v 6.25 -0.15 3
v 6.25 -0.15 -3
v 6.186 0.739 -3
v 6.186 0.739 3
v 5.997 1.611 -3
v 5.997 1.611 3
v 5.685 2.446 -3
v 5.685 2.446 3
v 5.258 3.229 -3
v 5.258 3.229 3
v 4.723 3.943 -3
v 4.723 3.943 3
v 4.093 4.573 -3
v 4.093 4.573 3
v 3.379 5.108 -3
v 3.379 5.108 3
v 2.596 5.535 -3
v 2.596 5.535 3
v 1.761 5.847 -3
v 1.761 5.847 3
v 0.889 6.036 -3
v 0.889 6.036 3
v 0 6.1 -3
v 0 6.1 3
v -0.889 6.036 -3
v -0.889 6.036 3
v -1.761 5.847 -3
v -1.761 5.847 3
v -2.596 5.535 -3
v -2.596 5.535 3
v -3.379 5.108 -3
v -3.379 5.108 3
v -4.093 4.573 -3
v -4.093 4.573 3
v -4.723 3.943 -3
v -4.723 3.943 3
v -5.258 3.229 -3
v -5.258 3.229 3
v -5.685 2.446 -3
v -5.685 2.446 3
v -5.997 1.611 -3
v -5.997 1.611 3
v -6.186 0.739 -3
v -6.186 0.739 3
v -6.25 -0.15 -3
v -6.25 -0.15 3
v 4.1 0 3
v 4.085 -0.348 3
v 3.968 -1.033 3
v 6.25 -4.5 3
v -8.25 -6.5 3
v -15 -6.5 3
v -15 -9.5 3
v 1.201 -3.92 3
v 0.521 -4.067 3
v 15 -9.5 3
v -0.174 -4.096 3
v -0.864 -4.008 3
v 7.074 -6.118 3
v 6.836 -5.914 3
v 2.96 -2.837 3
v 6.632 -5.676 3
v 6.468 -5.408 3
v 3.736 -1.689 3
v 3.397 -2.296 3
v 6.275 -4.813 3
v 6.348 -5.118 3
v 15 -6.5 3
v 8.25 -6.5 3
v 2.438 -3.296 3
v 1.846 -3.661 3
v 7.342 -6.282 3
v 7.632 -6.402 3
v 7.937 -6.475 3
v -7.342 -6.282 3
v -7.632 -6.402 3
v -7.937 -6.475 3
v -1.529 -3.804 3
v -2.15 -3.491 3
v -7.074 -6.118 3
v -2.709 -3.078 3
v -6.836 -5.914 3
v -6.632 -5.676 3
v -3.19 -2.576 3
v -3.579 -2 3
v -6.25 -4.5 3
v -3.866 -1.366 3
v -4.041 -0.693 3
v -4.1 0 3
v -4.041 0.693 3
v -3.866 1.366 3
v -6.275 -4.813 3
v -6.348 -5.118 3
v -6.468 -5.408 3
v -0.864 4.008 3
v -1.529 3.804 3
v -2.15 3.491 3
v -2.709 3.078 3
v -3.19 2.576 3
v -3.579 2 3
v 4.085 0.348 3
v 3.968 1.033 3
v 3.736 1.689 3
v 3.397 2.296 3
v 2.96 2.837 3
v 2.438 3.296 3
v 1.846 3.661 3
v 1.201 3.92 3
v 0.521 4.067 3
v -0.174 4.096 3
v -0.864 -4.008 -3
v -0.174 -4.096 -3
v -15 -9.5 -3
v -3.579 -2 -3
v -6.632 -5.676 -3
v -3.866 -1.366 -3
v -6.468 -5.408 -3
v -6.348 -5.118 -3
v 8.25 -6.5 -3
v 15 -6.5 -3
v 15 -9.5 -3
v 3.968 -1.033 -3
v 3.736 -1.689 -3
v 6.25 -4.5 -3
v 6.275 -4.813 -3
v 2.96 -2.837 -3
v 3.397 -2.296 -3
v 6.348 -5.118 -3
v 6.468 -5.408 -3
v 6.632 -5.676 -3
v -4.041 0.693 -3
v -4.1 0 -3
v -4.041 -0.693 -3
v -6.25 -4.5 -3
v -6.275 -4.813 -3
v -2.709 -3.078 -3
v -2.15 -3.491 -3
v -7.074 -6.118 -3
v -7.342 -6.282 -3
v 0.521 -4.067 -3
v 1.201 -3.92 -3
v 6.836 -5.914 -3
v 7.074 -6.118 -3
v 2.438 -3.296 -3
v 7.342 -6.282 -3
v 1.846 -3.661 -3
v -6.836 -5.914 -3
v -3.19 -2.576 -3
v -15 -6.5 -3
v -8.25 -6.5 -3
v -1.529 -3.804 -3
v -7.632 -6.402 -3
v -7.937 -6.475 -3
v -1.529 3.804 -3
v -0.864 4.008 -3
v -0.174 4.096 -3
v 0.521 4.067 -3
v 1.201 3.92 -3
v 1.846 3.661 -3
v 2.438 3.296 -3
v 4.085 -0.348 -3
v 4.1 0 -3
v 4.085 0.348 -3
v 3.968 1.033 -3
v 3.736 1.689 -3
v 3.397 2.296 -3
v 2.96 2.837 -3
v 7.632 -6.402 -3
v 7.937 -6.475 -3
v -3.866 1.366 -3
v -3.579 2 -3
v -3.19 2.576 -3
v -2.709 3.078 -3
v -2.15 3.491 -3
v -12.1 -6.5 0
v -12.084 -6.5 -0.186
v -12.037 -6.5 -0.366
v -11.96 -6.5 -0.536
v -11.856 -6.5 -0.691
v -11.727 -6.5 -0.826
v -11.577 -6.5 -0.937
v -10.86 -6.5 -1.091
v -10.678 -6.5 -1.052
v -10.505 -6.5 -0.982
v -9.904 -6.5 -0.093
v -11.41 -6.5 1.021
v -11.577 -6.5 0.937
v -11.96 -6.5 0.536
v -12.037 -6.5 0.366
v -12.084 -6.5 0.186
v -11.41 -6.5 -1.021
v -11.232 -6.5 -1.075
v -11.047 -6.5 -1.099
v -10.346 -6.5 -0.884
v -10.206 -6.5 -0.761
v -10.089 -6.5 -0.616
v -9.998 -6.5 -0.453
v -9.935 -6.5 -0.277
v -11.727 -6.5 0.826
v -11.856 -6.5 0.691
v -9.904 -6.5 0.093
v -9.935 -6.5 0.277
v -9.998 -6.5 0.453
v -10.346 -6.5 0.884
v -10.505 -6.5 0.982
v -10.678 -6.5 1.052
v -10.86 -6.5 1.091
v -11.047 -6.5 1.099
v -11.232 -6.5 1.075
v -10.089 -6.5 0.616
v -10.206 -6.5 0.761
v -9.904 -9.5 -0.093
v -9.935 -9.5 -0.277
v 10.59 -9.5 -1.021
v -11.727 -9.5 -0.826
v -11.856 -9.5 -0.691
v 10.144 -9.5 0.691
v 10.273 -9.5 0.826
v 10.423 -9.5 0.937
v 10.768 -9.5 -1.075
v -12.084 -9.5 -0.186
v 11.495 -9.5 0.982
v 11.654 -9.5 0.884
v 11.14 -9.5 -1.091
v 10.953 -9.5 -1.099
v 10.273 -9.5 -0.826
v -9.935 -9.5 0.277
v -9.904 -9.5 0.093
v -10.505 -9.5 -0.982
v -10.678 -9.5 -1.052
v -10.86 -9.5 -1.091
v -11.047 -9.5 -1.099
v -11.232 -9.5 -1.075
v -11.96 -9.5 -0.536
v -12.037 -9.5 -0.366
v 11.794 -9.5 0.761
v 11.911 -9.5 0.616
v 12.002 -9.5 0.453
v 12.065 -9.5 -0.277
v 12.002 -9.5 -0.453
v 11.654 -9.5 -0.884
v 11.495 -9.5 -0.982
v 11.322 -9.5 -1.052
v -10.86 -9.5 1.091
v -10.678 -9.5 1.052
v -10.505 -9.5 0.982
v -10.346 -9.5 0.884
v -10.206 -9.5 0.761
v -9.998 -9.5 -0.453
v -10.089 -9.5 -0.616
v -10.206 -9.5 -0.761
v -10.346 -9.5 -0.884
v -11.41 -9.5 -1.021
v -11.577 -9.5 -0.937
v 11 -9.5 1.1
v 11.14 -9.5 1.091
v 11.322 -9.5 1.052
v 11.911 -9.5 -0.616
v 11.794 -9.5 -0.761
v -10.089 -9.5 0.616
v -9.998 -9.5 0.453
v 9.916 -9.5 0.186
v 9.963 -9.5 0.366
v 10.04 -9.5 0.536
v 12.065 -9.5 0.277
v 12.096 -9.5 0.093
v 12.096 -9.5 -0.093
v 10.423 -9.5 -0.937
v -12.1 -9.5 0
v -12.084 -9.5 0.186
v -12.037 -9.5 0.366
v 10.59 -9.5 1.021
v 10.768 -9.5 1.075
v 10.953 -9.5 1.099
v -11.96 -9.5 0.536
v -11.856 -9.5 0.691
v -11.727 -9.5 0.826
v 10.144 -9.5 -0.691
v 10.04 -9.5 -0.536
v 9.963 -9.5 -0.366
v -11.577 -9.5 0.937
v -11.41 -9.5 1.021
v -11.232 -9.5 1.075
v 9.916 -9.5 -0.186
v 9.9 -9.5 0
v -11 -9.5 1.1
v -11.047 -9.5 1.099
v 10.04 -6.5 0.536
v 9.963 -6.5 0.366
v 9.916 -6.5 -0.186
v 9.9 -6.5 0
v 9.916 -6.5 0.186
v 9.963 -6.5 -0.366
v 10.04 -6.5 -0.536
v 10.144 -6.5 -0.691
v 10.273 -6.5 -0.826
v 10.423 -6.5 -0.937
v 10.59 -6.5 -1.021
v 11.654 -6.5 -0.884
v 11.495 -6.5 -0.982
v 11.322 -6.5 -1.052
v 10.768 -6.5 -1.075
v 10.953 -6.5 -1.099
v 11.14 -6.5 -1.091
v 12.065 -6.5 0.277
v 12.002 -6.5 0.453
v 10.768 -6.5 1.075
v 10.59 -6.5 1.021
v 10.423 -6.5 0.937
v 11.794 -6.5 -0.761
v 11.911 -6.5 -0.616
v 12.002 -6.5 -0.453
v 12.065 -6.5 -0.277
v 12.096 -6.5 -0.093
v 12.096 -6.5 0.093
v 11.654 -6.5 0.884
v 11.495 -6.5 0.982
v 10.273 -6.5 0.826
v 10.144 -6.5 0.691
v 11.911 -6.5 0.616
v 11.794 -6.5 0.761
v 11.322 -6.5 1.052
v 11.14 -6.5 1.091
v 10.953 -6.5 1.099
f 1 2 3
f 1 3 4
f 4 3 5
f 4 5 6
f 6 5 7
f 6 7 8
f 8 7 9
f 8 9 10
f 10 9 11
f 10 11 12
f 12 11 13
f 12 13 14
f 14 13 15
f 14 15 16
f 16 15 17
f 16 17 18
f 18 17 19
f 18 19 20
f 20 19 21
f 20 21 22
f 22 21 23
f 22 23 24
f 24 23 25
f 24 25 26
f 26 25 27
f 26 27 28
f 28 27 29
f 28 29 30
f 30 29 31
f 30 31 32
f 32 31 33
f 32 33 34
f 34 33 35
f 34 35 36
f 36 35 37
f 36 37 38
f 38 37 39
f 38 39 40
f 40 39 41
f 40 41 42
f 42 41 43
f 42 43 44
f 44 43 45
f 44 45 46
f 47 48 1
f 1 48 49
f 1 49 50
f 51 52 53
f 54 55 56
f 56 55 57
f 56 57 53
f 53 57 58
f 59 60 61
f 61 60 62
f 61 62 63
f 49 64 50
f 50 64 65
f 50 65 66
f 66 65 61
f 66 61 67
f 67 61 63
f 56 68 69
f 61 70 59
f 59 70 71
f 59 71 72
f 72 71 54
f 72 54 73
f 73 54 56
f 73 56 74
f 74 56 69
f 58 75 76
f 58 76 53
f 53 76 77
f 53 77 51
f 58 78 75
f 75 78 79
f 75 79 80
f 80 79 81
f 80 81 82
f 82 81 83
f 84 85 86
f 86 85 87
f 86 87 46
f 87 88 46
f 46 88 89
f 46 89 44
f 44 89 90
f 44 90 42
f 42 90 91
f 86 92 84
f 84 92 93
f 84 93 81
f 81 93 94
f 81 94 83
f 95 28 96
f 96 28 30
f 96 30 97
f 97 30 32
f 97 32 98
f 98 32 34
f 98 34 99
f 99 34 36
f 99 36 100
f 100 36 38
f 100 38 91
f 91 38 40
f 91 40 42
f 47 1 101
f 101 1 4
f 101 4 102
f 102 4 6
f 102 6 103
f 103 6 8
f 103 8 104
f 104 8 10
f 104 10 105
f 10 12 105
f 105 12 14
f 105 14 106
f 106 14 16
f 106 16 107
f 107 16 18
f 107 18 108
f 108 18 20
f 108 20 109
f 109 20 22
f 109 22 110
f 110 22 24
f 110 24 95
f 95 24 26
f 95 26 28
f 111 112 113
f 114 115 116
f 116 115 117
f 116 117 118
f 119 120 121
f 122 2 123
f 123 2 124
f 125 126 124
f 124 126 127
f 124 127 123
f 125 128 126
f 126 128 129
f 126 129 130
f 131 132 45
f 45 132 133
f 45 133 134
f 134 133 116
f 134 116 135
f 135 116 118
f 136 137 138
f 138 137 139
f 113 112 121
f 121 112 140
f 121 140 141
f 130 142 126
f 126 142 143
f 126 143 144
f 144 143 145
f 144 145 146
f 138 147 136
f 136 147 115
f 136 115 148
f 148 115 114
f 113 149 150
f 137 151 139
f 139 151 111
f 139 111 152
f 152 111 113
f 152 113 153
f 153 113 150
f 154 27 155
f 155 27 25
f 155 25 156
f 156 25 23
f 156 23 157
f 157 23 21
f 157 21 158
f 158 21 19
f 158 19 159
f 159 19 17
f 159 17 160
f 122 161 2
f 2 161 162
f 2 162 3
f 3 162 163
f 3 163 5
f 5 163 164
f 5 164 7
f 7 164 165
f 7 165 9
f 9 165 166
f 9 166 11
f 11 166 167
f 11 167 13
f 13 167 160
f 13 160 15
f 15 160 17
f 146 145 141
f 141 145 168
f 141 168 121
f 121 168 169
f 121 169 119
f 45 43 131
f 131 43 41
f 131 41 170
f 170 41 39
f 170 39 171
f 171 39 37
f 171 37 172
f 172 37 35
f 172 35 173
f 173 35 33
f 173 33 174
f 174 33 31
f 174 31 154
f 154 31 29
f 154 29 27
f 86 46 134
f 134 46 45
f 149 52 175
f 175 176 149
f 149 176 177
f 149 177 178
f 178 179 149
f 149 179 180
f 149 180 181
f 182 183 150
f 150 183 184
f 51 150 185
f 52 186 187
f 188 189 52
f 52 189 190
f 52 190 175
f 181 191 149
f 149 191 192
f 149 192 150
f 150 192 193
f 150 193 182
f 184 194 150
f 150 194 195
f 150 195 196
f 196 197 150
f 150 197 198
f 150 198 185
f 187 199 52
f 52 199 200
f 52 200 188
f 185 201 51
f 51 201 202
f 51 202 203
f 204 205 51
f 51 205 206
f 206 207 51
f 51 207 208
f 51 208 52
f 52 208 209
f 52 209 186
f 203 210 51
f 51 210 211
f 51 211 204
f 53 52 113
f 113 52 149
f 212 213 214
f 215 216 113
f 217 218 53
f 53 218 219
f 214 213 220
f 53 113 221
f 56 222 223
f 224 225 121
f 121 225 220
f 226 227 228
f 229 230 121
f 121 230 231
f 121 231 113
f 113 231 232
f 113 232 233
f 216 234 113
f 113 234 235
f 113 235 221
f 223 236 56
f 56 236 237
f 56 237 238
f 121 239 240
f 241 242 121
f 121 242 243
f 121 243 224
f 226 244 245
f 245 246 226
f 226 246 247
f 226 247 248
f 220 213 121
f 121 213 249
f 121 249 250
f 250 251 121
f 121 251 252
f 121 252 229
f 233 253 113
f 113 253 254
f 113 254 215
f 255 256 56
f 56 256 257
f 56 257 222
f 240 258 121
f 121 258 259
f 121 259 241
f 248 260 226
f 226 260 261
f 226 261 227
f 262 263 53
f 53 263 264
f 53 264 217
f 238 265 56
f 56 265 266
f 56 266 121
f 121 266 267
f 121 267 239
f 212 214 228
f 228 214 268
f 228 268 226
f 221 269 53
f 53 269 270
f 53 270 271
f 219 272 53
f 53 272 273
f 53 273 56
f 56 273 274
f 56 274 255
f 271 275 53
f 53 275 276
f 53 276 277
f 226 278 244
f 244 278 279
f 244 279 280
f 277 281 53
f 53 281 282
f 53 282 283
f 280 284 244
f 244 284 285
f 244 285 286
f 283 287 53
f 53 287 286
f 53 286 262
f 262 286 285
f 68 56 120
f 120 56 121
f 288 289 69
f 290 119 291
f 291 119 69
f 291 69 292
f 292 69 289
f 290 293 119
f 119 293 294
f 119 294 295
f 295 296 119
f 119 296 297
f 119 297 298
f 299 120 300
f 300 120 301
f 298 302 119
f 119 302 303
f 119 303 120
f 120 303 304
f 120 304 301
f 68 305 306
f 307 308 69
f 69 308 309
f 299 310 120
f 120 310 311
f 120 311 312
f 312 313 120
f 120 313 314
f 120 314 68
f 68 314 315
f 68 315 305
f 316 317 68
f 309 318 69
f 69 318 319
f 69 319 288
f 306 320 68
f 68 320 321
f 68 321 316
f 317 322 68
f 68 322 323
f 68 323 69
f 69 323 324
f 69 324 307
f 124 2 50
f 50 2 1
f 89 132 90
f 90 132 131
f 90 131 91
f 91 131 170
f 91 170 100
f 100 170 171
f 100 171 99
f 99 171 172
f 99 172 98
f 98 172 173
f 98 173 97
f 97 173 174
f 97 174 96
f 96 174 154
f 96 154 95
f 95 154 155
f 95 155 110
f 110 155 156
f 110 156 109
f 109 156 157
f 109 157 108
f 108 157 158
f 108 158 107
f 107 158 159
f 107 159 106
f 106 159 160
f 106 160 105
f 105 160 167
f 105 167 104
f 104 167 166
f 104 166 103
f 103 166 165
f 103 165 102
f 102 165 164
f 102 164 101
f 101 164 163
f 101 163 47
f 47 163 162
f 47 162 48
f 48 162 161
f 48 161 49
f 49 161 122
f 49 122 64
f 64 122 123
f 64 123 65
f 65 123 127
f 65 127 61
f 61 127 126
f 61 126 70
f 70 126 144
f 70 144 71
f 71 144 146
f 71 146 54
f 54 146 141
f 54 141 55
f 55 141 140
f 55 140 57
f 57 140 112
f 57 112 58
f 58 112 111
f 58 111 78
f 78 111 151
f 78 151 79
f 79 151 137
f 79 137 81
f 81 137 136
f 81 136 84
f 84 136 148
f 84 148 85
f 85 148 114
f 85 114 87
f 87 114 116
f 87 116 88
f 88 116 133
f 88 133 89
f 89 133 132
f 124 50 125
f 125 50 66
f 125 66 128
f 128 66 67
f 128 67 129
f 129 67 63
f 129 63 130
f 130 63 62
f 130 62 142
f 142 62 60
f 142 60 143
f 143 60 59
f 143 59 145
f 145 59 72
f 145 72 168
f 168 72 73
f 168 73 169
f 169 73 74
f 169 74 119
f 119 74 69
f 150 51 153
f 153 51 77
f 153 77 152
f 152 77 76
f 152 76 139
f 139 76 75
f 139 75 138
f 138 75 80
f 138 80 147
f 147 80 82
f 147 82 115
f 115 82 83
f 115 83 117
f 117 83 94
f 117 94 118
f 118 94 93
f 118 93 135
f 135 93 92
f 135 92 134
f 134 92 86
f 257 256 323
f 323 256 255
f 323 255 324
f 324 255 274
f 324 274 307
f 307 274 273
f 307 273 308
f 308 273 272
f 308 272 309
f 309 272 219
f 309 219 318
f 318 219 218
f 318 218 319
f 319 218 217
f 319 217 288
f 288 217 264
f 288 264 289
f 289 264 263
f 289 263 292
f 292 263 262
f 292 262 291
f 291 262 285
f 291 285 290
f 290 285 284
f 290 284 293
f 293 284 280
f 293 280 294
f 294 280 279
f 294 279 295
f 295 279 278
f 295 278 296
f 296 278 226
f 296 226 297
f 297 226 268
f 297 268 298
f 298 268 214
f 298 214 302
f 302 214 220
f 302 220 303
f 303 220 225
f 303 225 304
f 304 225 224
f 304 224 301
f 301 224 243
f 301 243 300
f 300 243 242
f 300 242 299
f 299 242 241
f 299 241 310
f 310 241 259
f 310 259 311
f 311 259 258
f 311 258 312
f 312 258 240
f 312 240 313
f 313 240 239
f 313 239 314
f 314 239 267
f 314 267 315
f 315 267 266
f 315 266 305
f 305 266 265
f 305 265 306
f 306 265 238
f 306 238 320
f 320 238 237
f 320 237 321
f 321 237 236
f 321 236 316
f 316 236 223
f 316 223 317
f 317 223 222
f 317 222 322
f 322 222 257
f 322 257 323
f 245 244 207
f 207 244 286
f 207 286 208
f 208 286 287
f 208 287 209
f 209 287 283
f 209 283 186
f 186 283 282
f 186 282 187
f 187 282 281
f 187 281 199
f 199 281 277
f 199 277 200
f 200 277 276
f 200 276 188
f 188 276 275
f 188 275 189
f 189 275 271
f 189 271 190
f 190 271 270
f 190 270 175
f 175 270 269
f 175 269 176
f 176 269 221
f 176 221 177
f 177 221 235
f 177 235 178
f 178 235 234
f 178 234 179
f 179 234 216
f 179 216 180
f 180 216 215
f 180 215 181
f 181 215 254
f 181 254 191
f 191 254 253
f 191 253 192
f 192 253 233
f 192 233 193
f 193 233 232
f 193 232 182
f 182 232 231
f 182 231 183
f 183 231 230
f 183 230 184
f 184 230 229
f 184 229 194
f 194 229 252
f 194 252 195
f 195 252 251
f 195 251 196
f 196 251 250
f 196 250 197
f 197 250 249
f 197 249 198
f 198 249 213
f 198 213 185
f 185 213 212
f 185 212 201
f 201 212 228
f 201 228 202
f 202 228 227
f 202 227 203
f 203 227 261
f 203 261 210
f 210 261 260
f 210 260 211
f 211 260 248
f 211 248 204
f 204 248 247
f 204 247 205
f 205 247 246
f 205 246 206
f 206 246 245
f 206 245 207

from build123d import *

# Parameters (mm, degrees)
SKETCH2_R           = 4.1
BOSS_EXTRUDE1_DEPTH = 3
FILLET1_RADIUS      = 6.25
FILLET1_LENGTH      = 6
FILLET2_R           = 2
SKETCH3_R           = 1.1
CUT_EXTRUDE1_DEPTH  = 3


with BuildPart() as part:
    # Sketch2 → Boss-Extrude1 (new, symmetric)
    with BuildSketch(Plane.XY):
        Polygon((6.25, -6.5), (15, -6.5), (15, -9.5), (-15, -9.5), (-15, -6.5), (-6.25, -6.5), (-6.25, 6.1), (6.25, 6.1), align=None)
        Circle(SKETCH2_R, mode=Mode.SUBTRACT)
    extrude(amount=BOSS_EXTRUDE1_DEPTH, both=True)

    # Fillet1: full round fillet: the end face becomes a half cylinder, R = half its width
    fillet1_face = Plane((0, 6.1, 0), x_dir=(0, 0, 1), z_dir=(0, 1, 0))  # on the end face: x along it, z out of the body
    fillet1_slab = fillet1_face.offset(-FILLET1_RADIUS / 2) * Box(FILLET1_LENGTH, 2 * FILLET1_RADIUS, FILLET1_RADIUS, mode=Mode.PRIVATE)  # the body's end, R deep
    fillet1_round = Plane((0, -0.15, 0), x_dir=(0, 1, 0), z_dir=(0, 0, 1)) * Cylinder(FILLET1_RADIUS, FILLET1_LENGTH, mode=Mode.PRIVATE)  # its axis R under the face
    add(fillet1_slab - fillet1_round, mode=Mode.SUBTRACT)

    # Fillet2
    fillet2_edges = [part.edges().sort_by_distance(p)[0] for p in [
        (6.25, -6.5, 0),
        (-6.25, -6.5, 0),
    ]]
    fillet(fillet2_edges, radius=FILLET2_R)

    # Sketch3 → Cut-Extrude1 (cut)
    with BuildSketch(Plane(origin=(0, -6.5, 0), x_dir=(1, 0, 0), z_dir=(0, 1, 0))):
        with Locations(Location((-11, 0, 0), (0, 0, 180))):
            Circle(SKETCH3_R)
        with Locations(Location((11, 0, 0), (0, 0, 180))):
            Circle(SKETCH3_R)
    extrude(amount=-CUT_EXTRUDE1_DEPTH, mode=Mode.SUBTRACT)


solid = part.part
